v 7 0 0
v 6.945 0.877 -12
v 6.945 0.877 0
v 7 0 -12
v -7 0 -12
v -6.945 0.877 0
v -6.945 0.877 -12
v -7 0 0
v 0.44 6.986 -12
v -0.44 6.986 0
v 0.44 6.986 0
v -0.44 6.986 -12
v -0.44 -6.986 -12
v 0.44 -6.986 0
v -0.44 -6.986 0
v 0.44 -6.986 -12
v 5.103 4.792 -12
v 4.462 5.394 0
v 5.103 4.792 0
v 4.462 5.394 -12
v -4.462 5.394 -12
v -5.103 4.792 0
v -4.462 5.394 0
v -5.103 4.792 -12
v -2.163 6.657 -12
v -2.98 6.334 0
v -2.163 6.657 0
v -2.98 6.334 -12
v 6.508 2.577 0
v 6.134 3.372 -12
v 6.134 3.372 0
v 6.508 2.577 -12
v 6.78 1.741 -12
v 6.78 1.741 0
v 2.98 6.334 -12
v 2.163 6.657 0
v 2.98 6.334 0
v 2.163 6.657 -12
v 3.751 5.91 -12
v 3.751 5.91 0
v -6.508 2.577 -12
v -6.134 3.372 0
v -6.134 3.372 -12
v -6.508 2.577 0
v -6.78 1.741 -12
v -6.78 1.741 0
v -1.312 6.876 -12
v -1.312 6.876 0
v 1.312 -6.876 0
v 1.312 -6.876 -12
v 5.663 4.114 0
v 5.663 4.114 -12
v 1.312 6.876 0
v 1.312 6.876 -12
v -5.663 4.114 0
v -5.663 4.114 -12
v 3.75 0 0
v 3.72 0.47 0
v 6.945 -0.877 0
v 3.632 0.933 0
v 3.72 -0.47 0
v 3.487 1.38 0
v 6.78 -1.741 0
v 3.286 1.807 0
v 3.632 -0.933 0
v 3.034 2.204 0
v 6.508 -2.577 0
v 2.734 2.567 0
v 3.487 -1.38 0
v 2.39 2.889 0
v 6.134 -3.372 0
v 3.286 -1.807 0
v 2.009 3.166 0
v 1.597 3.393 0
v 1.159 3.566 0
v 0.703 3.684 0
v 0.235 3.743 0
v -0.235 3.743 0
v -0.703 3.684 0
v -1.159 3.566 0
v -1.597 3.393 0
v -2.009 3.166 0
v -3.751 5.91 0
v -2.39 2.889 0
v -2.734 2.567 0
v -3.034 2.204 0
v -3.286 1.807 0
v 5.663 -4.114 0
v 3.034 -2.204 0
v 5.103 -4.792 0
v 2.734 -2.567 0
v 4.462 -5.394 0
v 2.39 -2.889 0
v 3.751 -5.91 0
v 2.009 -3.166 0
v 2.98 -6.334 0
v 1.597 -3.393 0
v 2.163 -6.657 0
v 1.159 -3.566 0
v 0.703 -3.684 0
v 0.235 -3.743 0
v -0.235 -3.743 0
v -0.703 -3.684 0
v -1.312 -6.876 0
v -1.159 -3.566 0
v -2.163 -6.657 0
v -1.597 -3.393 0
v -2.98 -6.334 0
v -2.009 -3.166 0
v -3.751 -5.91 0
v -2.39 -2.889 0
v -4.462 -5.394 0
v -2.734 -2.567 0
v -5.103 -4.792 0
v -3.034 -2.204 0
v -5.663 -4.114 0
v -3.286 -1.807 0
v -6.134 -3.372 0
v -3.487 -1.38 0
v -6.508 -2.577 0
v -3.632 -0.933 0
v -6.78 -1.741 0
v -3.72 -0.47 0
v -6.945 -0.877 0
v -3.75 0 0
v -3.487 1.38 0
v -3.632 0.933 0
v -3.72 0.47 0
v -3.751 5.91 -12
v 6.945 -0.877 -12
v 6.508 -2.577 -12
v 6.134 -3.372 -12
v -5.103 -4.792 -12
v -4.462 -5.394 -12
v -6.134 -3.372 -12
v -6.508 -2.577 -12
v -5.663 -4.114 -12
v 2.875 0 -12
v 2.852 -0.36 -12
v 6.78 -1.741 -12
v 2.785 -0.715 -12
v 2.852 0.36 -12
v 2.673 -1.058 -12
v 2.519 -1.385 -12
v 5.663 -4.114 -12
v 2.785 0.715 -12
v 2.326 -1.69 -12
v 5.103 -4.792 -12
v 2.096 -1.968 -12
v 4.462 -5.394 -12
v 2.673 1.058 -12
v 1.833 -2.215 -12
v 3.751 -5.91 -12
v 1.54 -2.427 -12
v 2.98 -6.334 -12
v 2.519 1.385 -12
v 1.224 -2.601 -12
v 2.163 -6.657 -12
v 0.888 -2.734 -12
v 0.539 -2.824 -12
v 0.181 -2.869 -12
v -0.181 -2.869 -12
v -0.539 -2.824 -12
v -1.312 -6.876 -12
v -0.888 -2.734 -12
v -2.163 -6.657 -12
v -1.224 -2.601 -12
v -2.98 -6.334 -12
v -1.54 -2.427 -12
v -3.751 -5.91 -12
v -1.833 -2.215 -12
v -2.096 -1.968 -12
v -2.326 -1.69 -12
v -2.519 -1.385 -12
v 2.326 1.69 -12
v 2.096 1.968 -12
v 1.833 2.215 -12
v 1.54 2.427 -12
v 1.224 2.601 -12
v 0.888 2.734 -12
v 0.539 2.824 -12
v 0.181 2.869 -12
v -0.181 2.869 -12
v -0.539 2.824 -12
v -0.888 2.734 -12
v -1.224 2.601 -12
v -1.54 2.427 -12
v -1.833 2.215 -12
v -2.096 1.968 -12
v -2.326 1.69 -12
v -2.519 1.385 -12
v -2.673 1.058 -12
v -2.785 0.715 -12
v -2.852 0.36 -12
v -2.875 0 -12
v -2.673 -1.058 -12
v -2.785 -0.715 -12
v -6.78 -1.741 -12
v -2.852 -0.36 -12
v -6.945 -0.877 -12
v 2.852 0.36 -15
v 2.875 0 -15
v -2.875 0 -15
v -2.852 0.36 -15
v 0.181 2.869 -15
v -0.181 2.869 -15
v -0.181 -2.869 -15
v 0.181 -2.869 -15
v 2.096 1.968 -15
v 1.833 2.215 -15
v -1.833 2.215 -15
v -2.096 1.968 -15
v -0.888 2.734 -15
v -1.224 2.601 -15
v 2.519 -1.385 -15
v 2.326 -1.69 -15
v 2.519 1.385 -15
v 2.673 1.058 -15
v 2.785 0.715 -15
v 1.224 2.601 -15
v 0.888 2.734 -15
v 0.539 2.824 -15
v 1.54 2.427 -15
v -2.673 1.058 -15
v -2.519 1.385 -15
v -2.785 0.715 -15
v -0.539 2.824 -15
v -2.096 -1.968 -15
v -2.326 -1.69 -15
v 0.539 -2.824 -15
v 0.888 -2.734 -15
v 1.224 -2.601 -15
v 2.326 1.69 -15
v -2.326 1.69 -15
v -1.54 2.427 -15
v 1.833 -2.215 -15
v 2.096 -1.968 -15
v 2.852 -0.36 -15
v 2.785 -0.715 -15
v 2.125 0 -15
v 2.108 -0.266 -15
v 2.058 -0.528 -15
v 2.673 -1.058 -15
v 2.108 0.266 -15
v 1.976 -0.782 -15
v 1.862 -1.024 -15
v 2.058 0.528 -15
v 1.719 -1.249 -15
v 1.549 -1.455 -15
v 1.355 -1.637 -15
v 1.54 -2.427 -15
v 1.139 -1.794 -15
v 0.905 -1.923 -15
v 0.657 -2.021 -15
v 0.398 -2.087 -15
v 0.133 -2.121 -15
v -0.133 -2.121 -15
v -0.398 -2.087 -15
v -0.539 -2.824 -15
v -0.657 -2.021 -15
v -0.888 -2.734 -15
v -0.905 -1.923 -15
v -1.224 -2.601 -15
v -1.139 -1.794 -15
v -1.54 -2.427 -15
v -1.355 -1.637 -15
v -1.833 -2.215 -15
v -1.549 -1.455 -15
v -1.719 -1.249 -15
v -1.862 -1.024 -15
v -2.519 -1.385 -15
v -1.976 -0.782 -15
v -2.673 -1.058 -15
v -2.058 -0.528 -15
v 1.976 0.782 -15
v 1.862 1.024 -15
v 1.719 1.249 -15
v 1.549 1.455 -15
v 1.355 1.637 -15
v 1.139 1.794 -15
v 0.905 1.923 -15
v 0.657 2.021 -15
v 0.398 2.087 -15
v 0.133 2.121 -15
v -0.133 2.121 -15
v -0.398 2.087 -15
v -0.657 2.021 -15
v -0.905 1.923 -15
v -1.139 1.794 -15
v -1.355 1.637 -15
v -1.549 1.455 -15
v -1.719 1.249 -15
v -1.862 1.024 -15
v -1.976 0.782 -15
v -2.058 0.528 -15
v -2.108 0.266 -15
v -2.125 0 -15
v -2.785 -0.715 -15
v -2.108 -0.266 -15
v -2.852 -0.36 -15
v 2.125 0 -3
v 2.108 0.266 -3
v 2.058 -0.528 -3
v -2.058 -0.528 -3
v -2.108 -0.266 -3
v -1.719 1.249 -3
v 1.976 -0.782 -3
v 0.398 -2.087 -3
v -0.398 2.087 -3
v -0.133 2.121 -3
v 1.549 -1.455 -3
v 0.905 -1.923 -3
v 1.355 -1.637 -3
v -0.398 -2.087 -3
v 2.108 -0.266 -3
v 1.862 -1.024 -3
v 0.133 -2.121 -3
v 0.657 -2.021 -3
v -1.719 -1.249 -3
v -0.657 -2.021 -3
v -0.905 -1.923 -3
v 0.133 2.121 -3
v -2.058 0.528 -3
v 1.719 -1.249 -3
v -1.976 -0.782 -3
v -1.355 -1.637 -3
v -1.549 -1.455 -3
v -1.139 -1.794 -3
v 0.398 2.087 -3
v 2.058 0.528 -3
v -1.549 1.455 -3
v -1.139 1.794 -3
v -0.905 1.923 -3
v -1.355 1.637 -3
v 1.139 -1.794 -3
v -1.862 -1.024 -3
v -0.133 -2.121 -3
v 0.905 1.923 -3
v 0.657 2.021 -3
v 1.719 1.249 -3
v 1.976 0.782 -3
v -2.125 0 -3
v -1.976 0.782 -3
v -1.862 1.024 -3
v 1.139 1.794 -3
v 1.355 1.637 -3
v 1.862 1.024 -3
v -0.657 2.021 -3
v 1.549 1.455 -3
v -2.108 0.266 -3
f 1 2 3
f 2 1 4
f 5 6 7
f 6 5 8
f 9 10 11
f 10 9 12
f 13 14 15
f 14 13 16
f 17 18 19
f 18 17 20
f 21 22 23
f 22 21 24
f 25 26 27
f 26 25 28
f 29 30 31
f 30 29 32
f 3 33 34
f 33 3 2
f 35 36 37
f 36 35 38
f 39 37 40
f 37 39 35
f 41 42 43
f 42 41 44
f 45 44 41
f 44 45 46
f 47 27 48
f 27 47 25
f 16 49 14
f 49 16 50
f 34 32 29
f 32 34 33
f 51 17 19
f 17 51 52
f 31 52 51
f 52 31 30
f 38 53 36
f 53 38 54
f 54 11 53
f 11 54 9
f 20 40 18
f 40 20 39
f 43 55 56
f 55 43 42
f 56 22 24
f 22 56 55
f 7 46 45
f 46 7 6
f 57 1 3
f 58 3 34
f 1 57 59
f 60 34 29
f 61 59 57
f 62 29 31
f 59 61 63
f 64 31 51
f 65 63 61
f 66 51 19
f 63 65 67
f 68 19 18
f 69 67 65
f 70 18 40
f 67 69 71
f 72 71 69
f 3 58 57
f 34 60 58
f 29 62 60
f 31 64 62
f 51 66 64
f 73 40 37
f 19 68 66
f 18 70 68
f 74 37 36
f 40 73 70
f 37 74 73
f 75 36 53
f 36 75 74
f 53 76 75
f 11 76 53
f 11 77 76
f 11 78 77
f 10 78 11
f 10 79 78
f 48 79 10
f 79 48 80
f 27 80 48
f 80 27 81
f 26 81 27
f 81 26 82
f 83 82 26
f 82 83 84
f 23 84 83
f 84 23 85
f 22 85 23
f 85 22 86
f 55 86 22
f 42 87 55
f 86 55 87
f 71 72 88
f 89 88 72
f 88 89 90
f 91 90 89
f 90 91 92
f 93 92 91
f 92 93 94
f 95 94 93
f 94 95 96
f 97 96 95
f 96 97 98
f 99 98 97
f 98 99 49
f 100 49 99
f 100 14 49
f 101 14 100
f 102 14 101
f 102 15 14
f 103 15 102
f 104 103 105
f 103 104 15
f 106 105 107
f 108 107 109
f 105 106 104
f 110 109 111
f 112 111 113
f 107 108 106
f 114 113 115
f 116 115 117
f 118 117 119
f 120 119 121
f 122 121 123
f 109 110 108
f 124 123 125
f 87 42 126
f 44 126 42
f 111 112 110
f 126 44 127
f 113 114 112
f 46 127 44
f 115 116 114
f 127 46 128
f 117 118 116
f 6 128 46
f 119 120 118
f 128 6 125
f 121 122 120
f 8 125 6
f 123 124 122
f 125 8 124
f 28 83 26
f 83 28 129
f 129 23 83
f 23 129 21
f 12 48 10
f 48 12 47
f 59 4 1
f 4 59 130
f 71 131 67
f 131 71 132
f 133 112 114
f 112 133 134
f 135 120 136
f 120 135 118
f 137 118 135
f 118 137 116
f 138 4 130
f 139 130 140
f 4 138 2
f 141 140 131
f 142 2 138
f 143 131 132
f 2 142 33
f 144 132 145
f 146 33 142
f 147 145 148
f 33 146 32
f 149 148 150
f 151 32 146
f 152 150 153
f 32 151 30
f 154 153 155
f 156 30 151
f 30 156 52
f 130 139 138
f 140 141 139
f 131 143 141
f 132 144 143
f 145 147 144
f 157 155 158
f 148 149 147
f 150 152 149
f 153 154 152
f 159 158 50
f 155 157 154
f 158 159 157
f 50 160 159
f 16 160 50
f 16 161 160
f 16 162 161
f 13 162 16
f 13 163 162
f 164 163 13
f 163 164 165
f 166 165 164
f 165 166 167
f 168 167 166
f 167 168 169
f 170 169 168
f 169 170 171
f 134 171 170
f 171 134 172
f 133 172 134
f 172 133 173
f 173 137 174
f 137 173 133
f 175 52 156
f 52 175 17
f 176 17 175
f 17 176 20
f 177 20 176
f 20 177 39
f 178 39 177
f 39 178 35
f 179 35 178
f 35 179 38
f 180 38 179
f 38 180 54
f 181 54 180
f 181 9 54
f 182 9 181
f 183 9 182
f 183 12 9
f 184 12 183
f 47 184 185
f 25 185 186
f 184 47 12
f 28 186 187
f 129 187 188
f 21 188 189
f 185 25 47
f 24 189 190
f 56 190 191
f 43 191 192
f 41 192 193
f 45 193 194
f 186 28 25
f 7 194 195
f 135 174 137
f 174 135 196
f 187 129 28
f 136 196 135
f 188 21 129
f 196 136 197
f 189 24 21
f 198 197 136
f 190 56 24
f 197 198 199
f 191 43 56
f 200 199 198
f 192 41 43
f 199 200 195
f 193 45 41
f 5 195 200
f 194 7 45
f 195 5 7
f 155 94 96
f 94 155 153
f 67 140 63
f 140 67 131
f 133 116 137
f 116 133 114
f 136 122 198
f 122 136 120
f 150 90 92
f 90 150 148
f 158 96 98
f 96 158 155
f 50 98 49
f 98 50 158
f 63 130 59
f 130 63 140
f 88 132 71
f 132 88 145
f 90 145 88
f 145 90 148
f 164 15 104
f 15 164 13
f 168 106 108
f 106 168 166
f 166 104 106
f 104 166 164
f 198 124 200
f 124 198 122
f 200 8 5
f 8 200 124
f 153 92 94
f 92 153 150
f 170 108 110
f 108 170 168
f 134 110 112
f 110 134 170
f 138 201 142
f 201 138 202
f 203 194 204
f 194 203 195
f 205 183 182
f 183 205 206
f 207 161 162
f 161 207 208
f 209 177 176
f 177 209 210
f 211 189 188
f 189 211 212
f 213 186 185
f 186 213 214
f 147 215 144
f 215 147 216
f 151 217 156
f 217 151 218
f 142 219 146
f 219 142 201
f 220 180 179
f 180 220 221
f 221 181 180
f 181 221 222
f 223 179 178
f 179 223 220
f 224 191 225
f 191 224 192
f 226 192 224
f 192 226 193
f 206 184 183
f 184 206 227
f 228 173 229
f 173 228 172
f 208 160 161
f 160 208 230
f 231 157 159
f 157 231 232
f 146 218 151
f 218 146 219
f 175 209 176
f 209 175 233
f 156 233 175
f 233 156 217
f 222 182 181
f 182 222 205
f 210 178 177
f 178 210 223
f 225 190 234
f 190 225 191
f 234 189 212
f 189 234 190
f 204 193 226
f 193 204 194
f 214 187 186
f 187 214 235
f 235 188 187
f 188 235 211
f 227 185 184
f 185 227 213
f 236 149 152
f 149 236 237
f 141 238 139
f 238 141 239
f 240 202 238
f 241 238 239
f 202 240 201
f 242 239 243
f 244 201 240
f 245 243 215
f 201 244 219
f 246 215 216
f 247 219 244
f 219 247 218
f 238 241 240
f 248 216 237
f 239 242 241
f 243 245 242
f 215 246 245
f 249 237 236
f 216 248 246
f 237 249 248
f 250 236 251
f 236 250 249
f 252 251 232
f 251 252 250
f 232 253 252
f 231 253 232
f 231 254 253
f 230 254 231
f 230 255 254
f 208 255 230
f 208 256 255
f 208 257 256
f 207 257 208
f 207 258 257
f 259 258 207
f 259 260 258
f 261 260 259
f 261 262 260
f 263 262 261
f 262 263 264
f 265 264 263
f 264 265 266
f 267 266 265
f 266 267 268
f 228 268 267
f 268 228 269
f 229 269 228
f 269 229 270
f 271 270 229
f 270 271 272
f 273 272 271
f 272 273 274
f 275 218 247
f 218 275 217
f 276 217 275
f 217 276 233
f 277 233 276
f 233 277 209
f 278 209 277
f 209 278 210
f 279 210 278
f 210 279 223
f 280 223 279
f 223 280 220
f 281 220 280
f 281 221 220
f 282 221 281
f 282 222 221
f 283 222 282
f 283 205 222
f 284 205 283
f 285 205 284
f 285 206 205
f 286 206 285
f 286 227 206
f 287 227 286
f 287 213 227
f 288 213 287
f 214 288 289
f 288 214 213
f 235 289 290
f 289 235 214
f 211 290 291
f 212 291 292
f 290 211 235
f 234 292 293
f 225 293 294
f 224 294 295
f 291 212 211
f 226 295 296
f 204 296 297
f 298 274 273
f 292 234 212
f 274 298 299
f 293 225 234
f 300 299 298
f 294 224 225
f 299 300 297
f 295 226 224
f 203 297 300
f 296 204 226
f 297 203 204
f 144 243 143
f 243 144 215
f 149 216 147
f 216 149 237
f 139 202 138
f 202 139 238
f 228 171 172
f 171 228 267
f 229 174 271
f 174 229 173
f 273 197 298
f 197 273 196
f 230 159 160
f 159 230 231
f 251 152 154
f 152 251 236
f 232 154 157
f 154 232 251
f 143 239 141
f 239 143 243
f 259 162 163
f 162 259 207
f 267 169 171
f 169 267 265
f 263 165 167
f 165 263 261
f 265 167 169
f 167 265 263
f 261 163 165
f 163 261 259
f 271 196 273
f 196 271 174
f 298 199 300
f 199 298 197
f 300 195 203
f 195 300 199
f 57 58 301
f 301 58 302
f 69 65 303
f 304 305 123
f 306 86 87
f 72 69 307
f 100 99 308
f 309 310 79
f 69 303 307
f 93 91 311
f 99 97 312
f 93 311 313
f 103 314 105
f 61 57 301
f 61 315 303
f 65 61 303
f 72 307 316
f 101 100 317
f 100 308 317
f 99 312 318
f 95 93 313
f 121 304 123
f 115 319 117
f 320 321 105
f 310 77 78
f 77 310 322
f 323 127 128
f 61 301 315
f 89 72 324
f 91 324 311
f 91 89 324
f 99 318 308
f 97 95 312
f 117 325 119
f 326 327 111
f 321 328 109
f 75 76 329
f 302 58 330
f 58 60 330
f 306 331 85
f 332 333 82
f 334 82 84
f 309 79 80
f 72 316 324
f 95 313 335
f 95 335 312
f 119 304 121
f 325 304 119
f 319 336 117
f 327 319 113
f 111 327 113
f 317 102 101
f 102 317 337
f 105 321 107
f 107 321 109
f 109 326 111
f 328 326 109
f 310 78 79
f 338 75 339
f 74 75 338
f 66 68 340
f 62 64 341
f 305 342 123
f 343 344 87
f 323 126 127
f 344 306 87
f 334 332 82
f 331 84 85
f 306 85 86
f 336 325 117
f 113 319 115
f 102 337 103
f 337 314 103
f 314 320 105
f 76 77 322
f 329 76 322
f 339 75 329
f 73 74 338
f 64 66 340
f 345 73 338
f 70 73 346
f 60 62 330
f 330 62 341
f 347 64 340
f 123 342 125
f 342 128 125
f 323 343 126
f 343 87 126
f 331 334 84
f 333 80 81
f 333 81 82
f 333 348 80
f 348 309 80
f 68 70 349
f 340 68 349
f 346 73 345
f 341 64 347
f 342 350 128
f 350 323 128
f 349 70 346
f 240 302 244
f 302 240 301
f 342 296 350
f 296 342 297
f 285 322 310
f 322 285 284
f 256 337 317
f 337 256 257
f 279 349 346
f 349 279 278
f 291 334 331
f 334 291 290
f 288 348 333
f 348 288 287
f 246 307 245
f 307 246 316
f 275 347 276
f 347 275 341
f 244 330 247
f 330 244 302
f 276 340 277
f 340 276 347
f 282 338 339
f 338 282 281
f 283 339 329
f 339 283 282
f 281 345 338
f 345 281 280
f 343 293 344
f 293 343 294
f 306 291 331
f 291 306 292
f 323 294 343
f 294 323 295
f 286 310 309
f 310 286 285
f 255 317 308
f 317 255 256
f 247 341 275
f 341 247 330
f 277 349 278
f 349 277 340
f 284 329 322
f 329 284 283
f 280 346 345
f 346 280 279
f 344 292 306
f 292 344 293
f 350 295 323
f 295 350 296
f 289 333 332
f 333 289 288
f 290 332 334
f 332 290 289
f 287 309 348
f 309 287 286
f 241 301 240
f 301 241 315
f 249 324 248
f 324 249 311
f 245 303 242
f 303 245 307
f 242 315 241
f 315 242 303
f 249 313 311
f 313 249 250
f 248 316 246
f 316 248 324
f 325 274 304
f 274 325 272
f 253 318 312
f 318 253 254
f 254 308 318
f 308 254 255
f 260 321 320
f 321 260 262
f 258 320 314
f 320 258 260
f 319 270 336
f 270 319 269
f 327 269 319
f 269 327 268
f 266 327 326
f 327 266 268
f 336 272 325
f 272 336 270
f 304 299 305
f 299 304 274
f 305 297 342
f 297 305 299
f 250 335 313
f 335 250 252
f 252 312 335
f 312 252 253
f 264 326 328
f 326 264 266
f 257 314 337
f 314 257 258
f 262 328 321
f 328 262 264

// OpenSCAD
$fn = 50;


difference() {
	union() {
		translate(v = [0, 0, -12.0000000000]) {
			cylinder(h = 12, r = 7.0000000000);
		}
		translate(v = [0, 0, -15.0000000000]) {
			cylinder(h = 15, r = 2.8750000000);
		}
	}
	union() {
		translate(v = [0, 0, 0]) {
			rotate(a = [0, 0, 0]) {
				difference() {
					union() {
						translate(v = [0, 0, -15.0000000000]) {
							cylinder(h = 15, r = 2.0000000000);
						}
						translate(v = [0, 0, -3]) {
							cylinder(h = 3, r1 = 2.1250000000, r2 = 3.7500000000);
						}
						translate(v = [0, 0, -15.0000000000]) {
							cylinder(h = 15, r = 2.1250000000);
						}
						translate(v = [0, 0, -15.0000000000]) {
							cylinder(h = 15, r = 2.0000000000);
						}
					}
					union();
				}
			}
		}
	}
}
